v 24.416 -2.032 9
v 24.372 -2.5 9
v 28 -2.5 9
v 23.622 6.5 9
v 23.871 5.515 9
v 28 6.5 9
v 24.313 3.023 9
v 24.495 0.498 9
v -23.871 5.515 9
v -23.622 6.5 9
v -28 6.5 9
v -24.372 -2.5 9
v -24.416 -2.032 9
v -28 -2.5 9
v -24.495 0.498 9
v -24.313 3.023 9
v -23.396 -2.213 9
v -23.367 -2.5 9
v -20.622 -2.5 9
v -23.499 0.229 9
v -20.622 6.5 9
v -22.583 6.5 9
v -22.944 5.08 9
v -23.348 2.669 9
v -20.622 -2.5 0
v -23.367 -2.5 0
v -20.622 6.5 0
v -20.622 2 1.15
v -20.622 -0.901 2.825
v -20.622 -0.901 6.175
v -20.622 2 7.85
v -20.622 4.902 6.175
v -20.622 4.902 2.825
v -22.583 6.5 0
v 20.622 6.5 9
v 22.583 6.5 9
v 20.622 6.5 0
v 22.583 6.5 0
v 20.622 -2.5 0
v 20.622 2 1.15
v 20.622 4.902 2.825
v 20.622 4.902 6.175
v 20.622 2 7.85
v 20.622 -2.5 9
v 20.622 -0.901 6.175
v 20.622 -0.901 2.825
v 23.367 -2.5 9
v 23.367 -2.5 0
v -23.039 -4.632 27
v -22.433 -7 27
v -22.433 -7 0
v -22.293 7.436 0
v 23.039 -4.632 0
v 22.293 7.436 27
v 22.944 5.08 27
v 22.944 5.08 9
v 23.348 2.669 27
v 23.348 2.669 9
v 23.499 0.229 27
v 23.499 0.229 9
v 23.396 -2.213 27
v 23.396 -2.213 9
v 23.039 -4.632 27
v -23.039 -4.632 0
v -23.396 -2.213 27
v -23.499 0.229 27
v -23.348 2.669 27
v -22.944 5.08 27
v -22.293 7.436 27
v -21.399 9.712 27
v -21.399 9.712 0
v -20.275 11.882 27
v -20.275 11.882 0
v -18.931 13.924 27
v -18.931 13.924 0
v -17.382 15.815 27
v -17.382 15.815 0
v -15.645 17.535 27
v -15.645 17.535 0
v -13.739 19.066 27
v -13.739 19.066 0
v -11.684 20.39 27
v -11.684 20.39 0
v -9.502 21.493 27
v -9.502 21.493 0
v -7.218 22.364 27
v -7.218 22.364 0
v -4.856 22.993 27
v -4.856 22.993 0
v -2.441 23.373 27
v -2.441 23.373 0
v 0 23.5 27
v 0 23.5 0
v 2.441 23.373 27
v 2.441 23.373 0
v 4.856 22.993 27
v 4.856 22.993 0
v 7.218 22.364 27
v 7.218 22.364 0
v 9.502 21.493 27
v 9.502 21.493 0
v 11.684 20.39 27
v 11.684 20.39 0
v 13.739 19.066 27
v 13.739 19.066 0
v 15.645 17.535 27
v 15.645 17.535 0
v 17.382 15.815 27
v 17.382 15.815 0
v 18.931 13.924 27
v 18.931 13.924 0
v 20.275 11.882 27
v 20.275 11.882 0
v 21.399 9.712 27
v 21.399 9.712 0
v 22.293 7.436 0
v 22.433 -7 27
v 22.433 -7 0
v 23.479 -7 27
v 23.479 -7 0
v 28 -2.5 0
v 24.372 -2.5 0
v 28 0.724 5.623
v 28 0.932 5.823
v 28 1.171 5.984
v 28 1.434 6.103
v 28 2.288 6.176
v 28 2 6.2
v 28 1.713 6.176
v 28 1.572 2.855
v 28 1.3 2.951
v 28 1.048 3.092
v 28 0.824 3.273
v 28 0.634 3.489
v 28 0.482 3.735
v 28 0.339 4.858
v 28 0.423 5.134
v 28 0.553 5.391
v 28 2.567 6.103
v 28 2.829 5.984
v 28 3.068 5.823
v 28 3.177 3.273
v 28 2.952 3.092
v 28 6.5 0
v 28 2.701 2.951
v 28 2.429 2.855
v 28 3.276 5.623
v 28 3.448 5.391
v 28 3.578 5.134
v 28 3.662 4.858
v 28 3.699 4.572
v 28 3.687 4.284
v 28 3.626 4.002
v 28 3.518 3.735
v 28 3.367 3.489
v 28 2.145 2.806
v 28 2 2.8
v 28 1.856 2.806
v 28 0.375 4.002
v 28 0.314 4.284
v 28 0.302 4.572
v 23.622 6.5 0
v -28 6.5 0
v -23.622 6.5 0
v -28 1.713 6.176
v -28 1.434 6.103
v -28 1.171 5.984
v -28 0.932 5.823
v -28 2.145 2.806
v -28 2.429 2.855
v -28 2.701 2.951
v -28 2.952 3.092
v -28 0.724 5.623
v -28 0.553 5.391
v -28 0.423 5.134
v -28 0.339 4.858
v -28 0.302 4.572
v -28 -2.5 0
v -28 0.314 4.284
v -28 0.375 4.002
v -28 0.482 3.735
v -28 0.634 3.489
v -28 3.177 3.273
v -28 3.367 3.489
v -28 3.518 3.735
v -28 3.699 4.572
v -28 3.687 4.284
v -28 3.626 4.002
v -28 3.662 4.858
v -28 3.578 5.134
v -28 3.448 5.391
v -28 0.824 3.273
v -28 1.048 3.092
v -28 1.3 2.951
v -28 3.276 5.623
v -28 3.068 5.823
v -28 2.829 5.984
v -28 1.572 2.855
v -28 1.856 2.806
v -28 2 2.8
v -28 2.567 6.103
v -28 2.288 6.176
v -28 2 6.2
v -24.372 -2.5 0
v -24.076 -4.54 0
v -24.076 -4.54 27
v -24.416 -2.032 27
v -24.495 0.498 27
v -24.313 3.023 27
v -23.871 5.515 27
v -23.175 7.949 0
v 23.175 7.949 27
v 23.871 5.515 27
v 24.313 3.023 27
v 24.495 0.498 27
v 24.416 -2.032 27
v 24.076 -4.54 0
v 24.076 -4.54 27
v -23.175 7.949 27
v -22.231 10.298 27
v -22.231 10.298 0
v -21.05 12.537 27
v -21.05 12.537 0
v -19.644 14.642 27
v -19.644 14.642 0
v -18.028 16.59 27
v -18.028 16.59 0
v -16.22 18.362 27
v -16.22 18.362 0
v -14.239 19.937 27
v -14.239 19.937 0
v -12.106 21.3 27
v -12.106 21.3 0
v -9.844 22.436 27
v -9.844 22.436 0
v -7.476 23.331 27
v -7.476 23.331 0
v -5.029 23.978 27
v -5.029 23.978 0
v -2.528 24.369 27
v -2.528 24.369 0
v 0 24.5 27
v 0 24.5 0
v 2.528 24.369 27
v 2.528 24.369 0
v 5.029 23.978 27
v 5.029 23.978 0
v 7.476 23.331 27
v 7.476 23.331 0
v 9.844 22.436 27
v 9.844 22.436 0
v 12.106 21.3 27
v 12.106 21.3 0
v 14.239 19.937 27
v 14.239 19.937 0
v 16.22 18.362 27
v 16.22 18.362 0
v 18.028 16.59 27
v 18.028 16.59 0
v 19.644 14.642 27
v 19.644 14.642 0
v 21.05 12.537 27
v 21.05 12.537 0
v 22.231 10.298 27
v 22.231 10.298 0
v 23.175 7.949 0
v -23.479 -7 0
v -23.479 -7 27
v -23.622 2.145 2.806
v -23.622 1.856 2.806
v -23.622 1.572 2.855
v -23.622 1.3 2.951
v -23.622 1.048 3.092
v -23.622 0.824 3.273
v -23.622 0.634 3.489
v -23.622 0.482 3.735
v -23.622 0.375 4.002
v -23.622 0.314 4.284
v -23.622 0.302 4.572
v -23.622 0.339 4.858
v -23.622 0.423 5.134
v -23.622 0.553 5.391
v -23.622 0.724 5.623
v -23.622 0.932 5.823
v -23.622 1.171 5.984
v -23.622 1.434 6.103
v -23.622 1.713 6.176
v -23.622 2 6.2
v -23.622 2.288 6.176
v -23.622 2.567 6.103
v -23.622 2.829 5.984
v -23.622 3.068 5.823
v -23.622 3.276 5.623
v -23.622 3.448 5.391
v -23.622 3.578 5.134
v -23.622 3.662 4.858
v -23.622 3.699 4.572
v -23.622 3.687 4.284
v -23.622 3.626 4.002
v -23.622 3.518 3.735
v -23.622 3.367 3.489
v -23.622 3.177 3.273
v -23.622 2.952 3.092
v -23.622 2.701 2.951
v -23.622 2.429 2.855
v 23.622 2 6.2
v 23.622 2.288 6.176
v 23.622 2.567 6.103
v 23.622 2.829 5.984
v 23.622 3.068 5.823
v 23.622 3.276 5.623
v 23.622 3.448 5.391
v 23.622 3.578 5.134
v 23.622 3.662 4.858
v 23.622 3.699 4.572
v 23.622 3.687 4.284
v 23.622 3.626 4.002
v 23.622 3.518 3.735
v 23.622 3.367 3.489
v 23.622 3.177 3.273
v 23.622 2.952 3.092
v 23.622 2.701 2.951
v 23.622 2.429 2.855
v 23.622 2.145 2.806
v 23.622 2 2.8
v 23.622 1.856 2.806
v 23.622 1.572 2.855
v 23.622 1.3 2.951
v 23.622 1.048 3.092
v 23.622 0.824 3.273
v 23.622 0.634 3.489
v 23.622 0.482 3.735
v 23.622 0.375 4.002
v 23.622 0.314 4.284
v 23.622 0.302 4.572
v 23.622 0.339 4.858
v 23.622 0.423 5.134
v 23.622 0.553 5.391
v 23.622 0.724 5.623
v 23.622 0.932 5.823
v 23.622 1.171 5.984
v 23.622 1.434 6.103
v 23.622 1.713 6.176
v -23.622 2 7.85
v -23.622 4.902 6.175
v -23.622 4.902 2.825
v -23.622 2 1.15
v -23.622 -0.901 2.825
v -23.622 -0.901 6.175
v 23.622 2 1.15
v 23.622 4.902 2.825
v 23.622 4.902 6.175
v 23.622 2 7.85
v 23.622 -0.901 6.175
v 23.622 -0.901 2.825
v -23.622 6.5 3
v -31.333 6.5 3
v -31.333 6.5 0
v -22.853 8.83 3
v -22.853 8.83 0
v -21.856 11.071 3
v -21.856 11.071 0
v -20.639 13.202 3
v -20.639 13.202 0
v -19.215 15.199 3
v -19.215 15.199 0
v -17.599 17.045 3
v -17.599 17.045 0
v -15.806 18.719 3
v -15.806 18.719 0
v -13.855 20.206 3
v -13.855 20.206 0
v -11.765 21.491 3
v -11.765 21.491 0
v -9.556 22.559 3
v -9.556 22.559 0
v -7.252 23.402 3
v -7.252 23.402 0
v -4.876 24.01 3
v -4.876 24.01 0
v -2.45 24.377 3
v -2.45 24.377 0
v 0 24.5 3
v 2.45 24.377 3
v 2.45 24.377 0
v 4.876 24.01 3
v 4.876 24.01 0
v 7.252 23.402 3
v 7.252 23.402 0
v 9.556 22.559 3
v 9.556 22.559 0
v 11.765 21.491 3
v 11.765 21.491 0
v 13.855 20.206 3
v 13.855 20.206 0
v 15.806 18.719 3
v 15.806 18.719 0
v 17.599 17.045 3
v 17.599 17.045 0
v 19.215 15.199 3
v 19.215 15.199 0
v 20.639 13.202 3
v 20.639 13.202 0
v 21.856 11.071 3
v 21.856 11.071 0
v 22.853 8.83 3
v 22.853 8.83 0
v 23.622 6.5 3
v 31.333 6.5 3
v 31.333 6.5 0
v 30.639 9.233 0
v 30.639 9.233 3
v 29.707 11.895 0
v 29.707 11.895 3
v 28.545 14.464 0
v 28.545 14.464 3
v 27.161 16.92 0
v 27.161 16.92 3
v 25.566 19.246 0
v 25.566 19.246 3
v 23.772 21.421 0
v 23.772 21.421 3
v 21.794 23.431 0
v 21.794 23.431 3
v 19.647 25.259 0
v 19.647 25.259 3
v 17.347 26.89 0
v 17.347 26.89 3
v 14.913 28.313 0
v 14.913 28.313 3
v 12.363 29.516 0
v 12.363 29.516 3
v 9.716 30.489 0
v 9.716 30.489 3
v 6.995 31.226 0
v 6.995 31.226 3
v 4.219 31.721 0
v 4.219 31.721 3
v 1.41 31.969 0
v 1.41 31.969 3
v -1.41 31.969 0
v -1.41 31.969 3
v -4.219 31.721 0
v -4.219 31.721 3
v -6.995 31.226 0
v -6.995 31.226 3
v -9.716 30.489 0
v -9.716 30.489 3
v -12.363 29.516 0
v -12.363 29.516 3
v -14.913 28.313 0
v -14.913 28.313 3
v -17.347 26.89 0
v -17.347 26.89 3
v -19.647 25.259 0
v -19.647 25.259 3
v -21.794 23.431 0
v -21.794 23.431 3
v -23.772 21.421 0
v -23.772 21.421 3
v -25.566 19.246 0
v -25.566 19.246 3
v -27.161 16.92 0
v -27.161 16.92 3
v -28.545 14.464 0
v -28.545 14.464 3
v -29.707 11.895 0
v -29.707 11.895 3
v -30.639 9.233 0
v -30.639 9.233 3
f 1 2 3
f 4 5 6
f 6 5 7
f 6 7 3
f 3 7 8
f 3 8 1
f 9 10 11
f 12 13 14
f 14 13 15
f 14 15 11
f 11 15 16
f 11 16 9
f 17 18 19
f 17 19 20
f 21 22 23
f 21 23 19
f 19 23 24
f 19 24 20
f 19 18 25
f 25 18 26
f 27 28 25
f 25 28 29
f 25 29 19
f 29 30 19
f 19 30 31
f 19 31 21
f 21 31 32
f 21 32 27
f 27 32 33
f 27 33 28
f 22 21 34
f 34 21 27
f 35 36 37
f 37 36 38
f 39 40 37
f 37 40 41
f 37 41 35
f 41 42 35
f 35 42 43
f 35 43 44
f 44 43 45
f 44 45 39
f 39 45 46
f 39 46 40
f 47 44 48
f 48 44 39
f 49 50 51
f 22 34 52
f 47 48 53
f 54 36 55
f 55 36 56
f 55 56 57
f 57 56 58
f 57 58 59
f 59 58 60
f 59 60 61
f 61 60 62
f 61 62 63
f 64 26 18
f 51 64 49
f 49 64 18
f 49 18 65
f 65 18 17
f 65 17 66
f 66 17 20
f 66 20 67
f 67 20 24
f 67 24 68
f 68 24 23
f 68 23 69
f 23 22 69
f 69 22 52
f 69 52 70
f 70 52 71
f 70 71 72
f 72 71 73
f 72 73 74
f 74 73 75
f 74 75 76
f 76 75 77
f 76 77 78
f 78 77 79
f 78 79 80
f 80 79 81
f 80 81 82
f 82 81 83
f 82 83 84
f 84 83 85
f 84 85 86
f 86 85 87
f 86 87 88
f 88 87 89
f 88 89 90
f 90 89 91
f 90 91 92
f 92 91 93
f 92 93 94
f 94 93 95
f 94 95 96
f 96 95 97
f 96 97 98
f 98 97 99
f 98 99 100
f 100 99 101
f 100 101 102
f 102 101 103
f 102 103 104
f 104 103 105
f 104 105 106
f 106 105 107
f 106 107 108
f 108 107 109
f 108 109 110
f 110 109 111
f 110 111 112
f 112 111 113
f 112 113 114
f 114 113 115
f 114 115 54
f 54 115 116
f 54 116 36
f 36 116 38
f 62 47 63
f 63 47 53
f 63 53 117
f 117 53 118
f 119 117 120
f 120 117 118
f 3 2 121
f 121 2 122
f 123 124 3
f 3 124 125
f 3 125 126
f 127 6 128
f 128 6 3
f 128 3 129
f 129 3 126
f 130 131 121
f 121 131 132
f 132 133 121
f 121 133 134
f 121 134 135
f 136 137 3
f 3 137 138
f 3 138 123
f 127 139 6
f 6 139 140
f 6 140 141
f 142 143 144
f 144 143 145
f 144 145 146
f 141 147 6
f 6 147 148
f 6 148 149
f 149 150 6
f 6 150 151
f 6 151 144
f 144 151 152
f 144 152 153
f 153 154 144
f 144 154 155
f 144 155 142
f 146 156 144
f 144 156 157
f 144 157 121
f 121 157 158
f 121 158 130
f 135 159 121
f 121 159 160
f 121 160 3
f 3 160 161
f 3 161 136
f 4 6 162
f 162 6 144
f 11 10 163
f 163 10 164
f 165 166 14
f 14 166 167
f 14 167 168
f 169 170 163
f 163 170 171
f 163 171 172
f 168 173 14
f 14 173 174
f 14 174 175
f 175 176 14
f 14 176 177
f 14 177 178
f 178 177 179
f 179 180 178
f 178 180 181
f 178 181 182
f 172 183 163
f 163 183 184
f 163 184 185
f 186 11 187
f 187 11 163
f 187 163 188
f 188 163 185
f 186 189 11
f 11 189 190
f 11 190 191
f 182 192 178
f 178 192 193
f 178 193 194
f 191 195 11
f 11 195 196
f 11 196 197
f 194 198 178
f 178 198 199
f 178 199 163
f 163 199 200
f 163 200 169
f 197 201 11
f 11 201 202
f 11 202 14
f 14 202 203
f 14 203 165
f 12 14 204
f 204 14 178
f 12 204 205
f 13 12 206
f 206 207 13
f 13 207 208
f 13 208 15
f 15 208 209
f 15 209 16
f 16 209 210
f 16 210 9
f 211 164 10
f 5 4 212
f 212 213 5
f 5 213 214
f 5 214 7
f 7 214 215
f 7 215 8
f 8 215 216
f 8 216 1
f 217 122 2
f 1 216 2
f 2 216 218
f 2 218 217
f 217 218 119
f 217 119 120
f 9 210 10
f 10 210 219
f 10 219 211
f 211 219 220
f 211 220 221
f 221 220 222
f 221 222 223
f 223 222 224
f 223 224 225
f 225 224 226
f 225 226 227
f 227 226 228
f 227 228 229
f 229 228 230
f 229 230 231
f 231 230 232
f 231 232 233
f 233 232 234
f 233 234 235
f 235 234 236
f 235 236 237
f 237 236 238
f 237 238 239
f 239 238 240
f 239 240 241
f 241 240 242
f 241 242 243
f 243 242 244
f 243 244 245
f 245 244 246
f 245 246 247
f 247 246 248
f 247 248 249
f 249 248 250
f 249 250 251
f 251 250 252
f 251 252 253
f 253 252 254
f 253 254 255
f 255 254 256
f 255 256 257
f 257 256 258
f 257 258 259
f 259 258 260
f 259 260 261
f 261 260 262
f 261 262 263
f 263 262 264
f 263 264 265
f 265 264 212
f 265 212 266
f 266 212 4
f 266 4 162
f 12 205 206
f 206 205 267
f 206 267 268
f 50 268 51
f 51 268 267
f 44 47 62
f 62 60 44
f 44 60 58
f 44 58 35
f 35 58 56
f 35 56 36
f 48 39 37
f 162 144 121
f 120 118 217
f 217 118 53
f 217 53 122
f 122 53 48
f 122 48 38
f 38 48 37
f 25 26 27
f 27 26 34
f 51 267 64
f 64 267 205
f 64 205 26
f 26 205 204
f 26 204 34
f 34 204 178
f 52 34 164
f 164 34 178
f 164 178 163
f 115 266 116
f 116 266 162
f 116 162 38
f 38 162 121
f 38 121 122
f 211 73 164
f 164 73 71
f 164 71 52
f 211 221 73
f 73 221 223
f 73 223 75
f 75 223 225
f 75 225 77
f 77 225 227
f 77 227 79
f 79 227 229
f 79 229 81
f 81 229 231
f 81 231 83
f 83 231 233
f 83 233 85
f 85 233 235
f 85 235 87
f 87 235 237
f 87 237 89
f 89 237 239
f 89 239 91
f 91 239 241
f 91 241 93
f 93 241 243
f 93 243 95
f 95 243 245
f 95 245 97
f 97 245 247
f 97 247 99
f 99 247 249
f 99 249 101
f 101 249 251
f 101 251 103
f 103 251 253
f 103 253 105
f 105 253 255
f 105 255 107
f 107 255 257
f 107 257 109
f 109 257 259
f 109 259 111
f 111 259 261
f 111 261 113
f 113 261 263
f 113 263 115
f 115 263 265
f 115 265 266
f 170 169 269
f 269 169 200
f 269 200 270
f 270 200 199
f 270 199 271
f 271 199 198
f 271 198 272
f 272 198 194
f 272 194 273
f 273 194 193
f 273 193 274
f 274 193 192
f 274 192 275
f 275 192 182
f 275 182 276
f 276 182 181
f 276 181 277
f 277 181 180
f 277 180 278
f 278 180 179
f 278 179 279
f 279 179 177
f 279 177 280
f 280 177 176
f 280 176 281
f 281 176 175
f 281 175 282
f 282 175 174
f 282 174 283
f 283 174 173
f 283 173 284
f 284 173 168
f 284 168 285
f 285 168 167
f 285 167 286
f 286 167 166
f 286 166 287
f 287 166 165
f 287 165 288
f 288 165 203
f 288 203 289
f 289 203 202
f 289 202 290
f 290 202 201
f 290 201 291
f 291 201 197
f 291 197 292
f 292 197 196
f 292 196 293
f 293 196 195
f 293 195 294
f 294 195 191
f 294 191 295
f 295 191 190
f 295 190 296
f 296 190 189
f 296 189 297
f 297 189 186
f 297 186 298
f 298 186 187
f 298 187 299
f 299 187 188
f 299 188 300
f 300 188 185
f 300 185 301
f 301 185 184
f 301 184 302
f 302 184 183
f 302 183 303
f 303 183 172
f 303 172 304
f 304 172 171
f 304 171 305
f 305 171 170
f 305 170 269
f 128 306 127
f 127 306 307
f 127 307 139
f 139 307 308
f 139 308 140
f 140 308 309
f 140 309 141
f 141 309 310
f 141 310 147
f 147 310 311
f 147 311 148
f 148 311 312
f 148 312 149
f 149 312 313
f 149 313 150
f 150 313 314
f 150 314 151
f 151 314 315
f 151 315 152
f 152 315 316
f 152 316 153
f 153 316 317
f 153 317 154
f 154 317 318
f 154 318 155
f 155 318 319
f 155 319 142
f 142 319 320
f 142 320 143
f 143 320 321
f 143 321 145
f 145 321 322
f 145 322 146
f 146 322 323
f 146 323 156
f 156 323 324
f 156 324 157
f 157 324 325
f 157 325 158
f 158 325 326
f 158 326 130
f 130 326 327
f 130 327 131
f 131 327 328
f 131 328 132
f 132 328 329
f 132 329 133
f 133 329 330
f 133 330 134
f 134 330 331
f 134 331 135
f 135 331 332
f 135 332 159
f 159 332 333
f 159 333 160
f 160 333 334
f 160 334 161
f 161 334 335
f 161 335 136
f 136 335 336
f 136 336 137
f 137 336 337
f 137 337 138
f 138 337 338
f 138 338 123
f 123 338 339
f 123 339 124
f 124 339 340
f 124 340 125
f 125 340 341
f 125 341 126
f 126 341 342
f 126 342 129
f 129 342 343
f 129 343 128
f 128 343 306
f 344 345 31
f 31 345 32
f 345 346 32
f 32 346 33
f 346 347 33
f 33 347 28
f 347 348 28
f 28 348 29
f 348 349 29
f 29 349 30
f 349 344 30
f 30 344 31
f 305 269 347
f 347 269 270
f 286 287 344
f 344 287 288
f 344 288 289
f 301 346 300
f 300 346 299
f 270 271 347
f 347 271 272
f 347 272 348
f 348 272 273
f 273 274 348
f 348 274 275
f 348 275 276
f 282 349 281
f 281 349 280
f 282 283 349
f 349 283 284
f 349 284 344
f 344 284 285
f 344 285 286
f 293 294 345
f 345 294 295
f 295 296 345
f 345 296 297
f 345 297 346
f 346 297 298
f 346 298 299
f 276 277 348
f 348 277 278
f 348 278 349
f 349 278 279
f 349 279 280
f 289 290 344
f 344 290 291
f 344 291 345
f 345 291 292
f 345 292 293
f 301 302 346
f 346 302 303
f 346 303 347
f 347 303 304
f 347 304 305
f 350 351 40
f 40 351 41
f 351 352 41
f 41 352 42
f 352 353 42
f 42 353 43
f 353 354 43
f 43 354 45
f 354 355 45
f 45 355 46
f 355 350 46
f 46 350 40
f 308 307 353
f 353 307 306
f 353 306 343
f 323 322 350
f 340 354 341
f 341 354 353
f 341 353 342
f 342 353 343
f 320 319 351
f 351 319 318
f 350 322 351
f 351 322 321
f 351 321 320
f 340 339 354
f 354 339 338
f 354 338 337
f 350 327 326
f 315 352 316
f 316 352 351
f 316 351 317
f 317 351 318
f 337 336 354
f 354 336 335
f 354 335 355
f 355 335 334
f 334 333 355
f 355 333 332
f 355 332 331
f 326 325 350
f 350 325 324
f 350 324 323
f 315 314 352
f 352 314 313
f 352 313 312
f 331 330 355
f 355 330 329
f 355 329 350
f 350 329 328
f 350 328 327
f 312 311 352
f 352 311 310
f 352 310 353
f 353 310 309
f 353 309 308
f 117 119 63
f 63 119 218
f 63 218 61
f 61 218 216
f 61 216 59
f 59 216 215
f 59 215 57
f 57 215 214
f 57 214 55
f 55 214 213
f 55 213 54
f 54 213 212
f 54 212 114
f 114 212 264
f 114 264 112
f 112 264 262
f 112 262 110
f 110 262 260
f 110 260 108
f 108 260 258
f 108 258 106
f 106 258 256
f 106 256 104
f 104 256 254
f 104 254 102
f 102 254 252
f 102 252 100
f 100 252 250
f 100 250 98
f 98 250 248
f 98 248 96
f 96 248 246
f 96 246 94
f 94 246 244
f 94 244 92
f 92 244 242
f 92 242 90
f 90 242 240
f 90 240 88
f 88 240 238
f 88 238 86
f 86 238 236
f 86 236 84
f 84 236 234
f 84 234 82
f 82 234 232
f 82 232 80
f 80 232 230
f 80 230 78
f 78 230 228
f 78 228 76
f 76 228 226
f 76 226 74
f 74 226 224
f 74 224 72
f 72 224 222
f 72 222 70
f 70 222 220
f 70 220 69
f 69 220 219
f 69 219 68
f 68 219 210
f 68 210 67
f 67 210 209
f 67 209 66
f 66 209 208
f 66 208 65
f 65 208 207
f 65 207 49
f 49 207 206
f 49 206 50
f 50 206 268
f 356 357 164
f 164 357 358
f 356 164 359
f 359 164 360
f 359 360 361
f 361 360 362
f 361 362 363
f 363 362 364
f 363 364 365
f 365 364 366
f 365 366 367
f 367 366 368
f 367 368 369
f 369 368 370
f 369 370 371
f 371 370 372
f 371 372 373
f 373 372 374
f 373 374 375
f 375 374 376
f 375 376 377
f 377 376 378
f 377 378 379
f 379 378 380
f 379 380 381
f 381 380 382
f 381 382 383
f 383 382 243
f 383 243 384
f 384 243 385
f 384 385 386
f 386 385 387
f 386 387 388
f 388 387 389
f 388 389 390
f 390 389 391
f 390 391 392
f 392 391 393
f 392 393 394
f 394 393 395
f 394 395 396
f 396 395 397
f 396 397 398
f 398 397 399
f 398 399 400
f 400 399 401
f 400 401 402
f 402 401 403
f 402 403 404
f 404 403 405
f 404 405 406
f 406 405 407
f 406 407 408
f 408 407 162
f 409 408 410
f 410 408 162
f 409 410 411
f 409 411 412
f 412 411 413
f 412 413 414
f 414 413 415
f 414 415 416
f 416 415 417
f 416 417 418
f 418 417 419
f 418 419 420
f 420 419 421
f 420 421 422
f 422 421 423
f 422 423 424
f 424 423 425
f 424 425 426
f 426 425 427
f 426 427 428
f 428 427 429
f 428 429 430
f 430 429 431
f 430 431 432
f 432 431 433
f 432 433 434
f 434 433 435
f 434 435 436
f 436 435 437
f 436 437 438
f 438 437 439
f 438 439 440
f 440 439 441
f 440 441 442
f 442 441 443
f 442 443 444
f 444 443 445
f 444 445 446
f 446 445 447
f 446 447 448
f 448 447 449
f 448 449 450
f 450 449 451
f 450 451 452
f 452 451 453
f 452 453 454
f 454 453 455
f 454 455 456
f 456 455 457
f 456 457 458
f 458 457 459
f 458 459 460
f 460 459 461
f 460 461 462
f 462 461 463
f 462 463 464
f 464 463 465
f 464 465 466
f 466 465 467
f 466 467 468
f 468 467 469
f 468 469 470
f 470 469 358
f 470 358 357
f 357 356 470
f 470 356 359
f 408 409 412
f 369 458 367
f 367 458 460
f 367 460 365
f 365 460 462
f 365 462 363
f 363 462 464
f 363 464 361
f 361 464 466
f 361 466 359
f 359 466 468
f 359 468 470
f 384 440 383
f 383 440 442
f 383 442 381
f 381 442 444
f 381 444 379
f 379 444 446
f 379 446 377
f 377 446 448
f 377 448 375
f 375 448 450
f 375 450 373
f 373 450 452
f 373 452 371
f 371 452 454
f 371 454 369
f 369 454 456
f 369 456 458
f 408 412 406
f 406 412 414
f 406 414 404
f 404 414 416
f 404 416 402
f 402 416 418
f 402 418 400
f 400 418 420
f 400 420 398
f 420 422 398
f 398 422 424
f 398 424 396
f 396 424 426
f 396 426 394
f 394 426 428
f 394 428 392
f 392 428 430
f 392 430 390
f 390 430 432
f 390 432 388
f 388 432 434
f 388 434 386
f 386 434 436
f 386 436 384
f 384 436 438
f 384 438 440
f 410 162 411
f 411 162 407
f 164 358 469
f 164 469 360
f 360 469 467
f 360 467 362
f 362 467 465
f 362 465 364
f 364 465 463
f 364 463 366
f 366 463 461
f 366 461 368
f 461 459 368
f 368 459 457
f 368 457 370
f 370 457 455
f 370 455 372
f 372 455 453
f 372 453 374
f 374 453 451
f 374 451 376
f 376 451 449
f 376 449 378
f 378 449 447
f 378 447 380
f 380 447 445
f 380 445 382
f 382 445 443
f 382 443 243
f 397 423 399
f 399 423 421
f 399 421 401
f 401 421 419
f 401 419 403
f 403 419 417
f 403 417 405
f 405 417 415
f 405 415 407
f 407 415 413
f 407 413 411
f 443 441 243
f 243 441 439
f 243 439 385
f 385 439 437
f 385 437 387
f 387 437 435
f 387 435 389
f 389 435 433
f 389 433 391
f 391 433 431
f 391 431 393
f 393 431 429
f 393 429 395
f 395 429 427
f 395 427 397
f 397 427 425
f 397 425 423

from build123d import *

# Parameters (mm, degrees)
BOSS_EXTRUDE1_DEPTH     = 9
CUT_EXTRUDE5_DEPTH      = 63
CUT_EXTRUDE5_DEPTH_BACK = 63
SKETCH7_R               = 1.7
CUT_EXTRUDE6_DEPTH      = 3
CUT_EXTRUDE3_DEPTH      = 3
BOSS_EXTRUDE3_DEPTH     = 18
BOSS_EXTRUDE4_DEPTH     = 3


with BuildPart() as part:
    # Sketch1 → Boss-Extrude1 (new body)
    with BuildSketch(Plane.XY):
        with BuildLine():
            Line((-23.621926952, 6.500351303), (-28, 6.500351303))
            Line((-28, 6.500351303), (-28, -2.499648697))
            Line((-28, -2.499648697), (-24.372151247, -2.499648697))
            ThreePointArc((-24.372151247, -2.499648697), (-24.031013525, -4.770784943), (-23.478713764, -7))
            Line((-23.478713764, -7), (-22.433234274, -7))
            ThreePointArc((-22.433234274, -7), (-23.010244201, -4.772699634), (-23.366680474, -2.499648697))
            Line((-23.366680474, -2.499648697), (-20.621926952, -2.499648697))
            Line((-20.621926952, -2.499648697), (-20.621926952, 6.500351303))
            Line((-20.621926952, 6.500351303), (-22.583078464, 6.500351303))
            ThreePointArc((-22.583078464, 6.500351303), (0, 23.5), (22.583078464, 6.500351303))
            Line((22.583078464, 6.500351303), (20.621926952, 6.500351303))
            Line((20.621926952, 6.500351303), (20.621926952, -2.499648697))
            Line((20.621926952, -2.499648697), (23.366680474, -2.499648697))
            ThreePointArc((23.366680474, -2.499648697), (23.010244201, -4.772699634), (22.433234274, -7))
            Line((22.433234274, -7), (23.478713764, -7))
            ThreePointArc((23.478713764, -7), (24.031013525, -4.770784943), (24.372151247, -2.499648697))
            Line((24.372151247, -2.499648697), (28, -2.499648697))
            Line((28, -2.499648697), (28, 6.500351303))
            Line((28, 6.500351303), (23.621926952, 6.500351303))
            ThreePointArc((23.621926952, 6.500351303), (0, 24.5), (-23.621926952, 6.500351303))
        make_face()
    extrude(amount=BOSS_EXTRUDE1_DEPTH)

    # Sketch7 → Cut-Extrude5 (cut, two sides: drawn at the far end of the back side and taken through both)
    with BuildSketch(Plane(origin=(28, 0, 0), x_dir=(0, 0, -1), z_dir=(1, 0, 0)).offset(-CUT_EXTRUDE5_DEPTH_BACK)):
        with Locations((-4.5, 2.000351303)):
            Circle(SKETCH7_R)
    extrude(amount=CUT_EXTRUDE5_DEPTH + CUT_EXTRUDE5_DEPTH_BACK, mode=Mode.SUBTRACT)

    # Sketch5 → Cut-Extrude6 (cut)
    with BuildSketch(Plane(origin=(-20.621926952, 0, 0), x_dir=(0, 0, -1), z_dir=(1, 0, 0))):
        Polygon((-6.175, 4.901536406), (-2.825, 4.901536406), (-1.15, 2.000351303), (-2.825, -0.900833799), (-6.175, -0.900833799), (-7.85, 2.000351303), align=None)
    extrude(amount=-CUT_EXTRUDE6_DEPTH, mode=Mode.SUBTRACT)

    # Sketch6 → Cut-Extrude3 (cut)
    with BuildSketch(Plane.ZY.offset(-20.621926952)):
        Polygon((2.825, 4.901536406), (6.175, 4.901536406), (7.85, 2.000351303), (6.175, -0.900833799), (2.825, -0.900833799), (1.15, 2.000351303), align=None)
    extrude(amount=-CUT_EXTRUDE3_DEPTH, mode=Mode.SUBTRACT)

    # Sketch8 → Boss-Extrude3 (add)
    with BuildSketch(Plane.XY.offset(9)):
        with BuildLine():
            ThreePointArc((-24.372151247, -2.499648697), (-24.031013525, -4.770784943), (-23.478713764, -7))
            Line((-23.478713764, -7), (-22.433234274, -7))
            ThreePointArc((-22.433234274, -7), (-23.010244201, -4.772699634), (-23.366680474, -2.499648697))
            ThreePointArc((-23.366680474, -2.499648697), (-23.411430683, 2.03836046), (-22.583078464, 6.500351303))
            ThreePointArc((-22.583078464, 6.500351303), (0, 23.5), (22.583078464, 6.500351303))
            ThreePointArc((22.583078464, 6.500351303), (23.269640564, 3.282350993), (23.5, 0))
            ThreePointArc((23.5, 0), (23.466646449, -1.251600745), (23.366680474, -2.499648697))
            ThreePointArc((23.366680474, -2.499648697), (23.010244201, -4.772699634), (22.433234274, -7))
            Line((22.433234274, -7), (23.478713764, -7))
            ThreePointArc((23.478713764, -7), (24.031013525, -4.770784943), (24.372151247, -2.499648697))
            ThreePointArc((24.372151247, -2.499648697), (24.468016936, -1.251458041), (24.5, 0))
            ThreePointArc((24.5, 0), (24.279489393, 3.279694321), (23.621926952, 6.500351303))
            ThreePointArc((23.621926952, 6.500351303), (0, 24.5), (-23.621926952, 6.500351303))
            ThreePointArc((-23.621926952, 6.500351303), (-24.415320713, 2.035218529), (-24.372151247, -2.499648697))
        make_face()
    extrude(amount=BOSS_EXTRUDE3_DEPTH)


with BuildPart() as body_2:
    # Sketch9 → Boss-Extrude4 (new body)
    with BuildSketch(Plane(origin=(0, 0, 0), x_dir=(-1, 0, 0), z_dir=(0, 0, -1))):
        with BuildLine():
            Line((-31.332817188, 6.500351303), (-28, 6.500351303))
            Line((-28, 6.500351303), (-23.621926952, 6.500351303))
            ThreePointArc((-23.621926952, 6.500351303), (0, 24.5), (23.621926952, 6.500351303))
            Line((23.621926952, 6.500351303), (28, 6.500351303))
            Line((28, 6.500351303), (31.332817188, 6.500351303))
            ThreePointArc((31.332817188, 6.500351303), (0, 32), (-31.332817188, 6.500351303))
        make_face()
    extrude(amount=-BOSS_EXTRUDE4_DEPTH)


solid = Compound([part.part, body_2.part])
